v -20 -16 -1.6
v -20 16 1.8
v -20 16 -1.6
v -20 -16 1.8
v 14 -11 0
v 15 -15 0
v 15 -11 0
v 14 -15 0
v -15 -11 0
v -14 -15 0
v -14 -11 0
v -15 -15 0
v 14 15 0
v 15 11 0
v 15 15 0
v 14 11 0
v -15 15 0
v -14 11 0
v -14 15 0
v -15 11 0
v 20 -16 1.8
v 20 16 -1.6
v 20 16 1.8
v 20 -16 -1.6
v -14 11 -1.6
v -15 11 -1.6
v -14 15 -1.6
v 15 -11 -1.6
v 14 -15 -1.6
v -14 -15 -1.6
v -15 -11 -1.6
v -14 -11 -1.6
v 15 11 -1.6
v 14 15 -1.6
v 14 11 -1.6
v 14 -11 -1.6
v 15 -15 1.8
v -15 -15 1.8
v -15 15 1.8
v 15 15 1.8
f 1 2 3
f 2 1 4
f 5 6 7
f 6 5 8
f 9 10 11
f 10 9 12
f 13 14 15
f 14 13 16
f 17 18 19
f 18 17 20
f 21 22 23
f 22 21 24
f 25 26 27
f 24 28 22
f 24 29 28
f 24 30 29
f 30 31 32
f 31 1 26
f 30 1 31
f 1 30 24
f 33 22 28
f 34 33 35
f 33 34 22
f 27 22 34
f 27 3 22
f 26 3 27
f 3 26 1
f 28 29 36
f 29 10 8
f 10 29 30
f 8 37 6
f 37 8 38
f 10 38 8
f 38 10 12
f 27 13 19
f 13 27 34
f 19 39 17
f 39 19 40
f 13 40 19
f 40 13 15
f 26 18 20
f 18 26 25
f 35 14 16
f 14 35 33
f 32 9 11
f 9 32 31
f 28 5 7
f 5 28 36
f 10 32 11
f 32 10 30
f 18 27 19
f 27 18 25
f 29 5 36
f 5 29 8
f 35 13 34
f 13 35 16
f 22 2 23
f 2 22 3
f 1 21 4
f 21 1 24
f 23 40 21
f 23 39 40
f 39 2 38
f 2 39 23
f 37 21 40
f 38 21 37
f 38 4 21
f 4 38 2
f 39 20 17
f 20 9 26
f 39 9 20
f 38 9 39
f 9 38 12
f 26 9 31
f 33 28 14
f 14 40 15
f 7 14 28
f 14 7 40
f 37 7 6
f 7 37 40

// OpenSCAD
//pcb
*translate([-15,-15,0]) cube([30,30,1.6]);

lipper=28;
longWay=40;
otherWay=32;

height=3.4;

union(){
translate([0,0,-1.6]){
    union(){
    difference(){
        translate([-longWay/2,-15,0]) cube([longWay,30,1.6]);
        translate([-31/2,-11,0]) cube([31,22,1.6]);
        translate([-lipper/2,-15,0]) cube([lipper,30,1.6]);
    }
    difference(){
        translate([-longWay/2,-otherWay/2,0]) cube([longWay,otherWay,1.6]);
        translate([-longWay/2,-15,0]) cube([longWay,30,1.6]);
    }
    difference(){
        translate([-longWay/2,-otherWay/2,0]) cube([longWay,otherWay,height]);
        translate([-15,-15,0]) cube([30,30,height]);
    }
}
}
}
